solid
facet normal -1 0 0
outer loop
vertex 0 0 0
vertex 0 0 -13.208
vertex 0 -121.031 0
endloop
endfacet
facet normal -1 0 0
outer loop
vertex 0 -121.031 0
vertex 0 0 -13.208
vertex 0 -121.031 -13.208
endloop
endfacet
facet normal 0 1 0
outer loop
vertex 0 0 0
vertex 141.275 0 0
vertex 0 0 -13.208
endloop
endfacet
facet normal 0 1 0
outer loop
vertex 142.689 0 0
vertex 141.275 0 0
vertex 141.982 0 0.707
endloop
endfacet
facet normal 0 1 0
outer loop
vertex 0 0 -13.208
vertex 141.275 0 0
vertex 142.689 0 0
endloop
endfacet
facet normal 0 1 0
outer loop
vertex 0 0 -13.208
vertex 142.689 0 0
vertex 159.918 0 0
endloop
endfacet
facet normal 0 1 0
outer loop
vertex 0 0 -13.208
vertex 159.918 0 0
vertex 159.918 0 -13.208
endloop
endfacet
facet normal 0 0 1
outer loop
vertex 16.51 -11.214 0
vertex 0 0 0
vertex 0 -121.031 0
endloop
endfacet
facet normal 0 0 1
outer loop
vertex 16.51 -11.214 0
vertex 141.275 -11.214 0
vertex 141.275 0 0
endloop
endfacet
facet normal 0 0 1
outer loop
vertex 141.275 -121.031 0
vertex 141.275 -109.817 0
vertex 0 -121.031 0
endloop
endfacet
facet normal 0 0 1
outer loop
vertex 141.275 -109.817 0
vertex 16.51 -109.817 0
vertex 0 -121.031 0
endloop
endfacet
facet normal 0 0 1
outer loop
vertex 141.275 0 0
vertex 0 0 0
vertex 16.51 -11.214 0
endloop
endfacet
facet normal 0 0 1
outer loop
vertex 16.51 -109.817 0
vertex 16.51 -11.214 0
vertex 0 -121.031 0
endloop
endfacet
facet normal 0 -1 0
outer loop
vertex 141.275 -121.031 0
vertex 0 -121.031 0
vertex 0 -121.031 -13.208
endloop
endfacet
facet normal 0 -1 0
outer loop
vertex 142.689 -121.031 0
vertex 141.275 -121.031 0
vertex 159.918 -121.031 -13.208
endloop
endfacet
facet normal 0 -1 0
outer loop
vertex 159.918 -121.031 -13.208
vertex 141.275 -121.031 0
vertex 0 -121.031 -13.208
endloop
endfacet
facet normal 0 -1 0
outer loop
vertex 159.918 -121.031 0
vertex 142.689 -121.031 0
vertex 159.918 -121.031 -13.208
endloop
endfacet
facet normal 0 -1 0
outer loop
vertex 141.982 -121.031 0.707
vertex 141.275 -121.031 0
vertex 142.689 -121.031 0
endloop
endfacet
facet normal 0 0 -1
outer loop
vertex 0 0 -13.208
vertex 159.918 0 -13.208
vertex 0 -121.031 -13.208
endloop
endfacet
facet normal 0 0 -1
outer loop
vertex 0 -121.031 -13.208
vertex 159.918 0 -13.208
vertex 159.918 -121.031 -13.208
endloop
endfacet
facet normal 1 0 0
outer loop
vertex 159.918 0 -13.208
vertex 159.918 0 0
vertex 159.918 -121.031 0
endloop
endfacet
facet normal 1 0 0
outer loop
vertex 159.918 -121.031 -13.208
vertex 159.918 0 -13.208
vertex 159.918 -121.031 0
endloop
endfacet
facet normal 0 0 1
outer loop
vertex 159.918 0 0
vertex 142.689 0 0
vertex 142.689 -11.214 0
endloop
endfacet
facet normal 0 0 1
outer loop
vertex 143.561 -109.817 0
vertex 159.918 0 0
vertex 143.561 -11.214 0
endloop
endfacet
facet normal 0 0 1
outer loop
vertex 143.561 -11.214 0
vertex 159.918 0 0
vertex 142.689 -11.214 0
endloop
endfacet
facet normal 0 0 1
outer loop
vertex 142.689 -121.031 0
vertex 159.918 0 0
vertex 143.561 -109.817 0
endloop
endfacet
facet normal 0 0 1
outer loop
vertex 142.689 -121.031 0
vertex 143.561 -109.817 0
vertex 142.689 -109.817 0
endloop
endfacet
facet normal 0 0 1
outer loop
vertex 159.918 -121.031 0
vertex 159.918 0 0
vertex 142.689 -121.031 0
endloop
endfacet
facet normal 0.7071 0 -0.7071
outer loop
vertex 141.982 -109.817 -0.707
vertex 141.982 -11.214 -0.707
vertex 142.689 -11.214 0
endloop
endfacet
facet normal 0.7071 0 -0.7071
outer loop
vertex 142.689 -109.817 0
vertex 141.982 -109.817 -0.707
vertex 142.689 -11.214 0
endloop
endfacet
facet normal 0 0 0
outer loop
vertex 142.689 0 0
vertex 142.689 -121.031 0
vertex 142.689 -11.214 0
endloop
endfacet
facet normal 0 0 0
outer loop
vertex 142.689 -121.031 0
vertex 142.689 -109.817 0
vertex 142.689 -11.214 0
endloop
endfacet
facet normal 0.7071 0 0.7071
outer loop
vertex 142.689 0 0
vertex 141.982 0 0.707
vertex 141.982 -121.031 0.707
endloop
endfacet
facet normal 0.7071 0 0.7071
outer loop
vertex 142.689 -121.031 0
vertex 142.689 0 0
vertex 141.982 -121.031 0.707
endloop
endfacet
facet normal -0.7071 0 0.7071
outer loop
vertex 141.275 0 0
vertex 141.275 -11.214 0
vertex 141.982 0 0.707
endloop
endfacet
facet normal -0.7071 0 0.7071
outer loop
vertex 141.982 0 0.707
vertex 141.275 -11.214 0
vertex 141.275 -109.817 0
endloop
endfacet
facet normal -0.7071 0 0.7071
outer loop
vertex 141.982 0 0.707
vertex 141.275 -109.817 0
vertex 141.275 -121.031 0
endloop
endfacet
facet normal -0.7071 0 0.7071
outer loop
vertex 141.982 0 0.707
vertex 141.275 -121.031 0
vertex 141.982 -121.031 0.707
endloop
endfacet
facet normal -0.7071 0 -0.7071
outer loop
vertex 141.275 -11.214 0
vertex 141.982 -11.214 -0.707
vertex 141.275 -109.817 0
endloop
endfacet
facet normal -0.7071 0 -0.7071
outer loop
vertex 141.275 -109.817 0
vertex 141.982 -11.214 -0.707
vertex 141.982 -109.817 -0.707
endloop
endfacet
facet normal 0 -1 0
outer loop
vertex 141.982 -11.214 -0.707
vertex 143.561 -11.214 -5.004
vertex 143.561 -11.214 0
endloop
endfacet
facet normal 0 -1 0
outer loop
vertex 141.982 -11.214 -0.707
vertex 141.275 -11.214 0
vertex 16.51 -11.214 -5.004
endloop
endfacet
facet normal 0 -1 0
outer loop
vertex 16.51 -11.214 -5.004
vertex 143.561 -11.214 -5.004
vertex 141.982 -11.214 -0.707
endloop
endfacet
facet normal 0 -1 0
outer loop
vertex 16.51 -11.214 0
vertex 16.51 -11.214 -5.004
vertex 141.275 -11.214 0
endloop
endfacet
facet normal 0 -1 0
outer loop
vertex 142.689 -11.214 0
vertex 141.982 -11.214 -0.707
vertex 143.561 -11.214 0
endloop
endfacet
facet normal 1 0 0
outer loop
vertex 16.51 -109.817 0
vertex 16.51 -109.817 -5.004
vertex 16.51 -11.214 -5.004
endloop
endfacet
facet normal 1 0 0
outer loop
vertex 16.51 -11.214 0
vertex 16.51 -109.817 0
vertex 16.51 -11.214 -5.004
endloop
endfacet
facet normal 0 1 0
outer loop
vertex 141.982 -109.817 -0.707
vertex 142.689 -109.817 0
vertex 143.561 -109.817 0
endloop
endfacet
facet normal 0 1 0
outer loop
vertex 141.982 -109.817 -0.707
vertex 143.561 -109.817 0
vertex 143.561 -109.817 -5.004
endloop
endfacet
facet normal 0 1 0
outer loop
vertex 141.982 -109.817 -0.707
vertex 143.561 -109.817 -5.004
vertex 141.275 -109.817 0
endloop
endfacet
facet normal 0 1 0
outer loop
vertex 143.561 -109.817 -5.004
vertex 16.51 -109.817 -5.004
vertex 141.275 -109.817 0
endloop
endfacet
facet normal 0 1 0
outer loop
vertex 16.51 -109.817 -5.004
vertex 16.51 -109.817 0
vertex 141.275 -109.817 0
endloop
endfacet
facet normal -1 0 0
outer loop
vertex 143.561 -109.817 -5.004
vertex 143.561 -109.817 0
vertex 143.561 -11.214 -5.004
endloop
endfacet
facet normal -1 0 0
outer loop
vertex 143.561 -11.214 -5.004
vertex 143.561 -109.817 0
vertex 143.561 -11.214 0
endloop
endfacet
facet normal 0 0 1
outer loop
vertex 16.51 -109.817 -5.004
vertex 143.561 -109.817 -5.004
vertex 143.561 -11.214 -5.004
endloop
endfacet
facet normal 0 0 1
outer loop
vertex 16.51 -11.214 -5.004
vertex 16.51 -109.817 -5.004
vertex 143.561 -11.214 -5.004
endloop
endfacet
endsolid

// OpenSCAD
// dimensions from http://home.earthlink.net/~eahoo/page8/filmhold.html
DepthToFilmSurface_in = 0.197;
RetainingTabLocation_in = 5.562;
Thickness_in = 0.520;
Length_in = 6.296;
Width_in = 4.765;
DistanceToExposureField_in = 0.650;
ExposureHeight_in = 5.002;
ExposureWidth_in = 3.882;

// convert inches to millimeters
DepthToFilmSurface_mm = DepthToFilmSurface_in * 25.4;
RetainingTabLocation_mm = RetainingTabLocation_in * 25.4;
Thickness_mm = Thickness_in * 25.4;
Length_mm = Length_in * 25.4;
Width_mm = Width_in * 25.4;
DistanceToExposureField_mm = DistanceToExposureField_in * 25.4;
ExposureHeight_mm = ExposureHeight_in * 25.4;
ExposureWidth_mm = ExposureWidth_in * 25.4;


rotate([180,0.0]) union()
{
difference()
{
	// Main body
	cube([Length_mm, Width_mm, Thickness_mm]);
	// empty space to film
	translate([DistanceToExposureField_mm, (Width_mm - ExposureWidth_mm) /2, 0]) cube([ExposureHeight_mm, ExposureWidth_mm, DepthToFilmSurface_mm]);
}

 translate([RetainingTabLocation_mm, 0 , 0]) rotate([0,45,0]) cube([1, Width_mm, 1]);
}
